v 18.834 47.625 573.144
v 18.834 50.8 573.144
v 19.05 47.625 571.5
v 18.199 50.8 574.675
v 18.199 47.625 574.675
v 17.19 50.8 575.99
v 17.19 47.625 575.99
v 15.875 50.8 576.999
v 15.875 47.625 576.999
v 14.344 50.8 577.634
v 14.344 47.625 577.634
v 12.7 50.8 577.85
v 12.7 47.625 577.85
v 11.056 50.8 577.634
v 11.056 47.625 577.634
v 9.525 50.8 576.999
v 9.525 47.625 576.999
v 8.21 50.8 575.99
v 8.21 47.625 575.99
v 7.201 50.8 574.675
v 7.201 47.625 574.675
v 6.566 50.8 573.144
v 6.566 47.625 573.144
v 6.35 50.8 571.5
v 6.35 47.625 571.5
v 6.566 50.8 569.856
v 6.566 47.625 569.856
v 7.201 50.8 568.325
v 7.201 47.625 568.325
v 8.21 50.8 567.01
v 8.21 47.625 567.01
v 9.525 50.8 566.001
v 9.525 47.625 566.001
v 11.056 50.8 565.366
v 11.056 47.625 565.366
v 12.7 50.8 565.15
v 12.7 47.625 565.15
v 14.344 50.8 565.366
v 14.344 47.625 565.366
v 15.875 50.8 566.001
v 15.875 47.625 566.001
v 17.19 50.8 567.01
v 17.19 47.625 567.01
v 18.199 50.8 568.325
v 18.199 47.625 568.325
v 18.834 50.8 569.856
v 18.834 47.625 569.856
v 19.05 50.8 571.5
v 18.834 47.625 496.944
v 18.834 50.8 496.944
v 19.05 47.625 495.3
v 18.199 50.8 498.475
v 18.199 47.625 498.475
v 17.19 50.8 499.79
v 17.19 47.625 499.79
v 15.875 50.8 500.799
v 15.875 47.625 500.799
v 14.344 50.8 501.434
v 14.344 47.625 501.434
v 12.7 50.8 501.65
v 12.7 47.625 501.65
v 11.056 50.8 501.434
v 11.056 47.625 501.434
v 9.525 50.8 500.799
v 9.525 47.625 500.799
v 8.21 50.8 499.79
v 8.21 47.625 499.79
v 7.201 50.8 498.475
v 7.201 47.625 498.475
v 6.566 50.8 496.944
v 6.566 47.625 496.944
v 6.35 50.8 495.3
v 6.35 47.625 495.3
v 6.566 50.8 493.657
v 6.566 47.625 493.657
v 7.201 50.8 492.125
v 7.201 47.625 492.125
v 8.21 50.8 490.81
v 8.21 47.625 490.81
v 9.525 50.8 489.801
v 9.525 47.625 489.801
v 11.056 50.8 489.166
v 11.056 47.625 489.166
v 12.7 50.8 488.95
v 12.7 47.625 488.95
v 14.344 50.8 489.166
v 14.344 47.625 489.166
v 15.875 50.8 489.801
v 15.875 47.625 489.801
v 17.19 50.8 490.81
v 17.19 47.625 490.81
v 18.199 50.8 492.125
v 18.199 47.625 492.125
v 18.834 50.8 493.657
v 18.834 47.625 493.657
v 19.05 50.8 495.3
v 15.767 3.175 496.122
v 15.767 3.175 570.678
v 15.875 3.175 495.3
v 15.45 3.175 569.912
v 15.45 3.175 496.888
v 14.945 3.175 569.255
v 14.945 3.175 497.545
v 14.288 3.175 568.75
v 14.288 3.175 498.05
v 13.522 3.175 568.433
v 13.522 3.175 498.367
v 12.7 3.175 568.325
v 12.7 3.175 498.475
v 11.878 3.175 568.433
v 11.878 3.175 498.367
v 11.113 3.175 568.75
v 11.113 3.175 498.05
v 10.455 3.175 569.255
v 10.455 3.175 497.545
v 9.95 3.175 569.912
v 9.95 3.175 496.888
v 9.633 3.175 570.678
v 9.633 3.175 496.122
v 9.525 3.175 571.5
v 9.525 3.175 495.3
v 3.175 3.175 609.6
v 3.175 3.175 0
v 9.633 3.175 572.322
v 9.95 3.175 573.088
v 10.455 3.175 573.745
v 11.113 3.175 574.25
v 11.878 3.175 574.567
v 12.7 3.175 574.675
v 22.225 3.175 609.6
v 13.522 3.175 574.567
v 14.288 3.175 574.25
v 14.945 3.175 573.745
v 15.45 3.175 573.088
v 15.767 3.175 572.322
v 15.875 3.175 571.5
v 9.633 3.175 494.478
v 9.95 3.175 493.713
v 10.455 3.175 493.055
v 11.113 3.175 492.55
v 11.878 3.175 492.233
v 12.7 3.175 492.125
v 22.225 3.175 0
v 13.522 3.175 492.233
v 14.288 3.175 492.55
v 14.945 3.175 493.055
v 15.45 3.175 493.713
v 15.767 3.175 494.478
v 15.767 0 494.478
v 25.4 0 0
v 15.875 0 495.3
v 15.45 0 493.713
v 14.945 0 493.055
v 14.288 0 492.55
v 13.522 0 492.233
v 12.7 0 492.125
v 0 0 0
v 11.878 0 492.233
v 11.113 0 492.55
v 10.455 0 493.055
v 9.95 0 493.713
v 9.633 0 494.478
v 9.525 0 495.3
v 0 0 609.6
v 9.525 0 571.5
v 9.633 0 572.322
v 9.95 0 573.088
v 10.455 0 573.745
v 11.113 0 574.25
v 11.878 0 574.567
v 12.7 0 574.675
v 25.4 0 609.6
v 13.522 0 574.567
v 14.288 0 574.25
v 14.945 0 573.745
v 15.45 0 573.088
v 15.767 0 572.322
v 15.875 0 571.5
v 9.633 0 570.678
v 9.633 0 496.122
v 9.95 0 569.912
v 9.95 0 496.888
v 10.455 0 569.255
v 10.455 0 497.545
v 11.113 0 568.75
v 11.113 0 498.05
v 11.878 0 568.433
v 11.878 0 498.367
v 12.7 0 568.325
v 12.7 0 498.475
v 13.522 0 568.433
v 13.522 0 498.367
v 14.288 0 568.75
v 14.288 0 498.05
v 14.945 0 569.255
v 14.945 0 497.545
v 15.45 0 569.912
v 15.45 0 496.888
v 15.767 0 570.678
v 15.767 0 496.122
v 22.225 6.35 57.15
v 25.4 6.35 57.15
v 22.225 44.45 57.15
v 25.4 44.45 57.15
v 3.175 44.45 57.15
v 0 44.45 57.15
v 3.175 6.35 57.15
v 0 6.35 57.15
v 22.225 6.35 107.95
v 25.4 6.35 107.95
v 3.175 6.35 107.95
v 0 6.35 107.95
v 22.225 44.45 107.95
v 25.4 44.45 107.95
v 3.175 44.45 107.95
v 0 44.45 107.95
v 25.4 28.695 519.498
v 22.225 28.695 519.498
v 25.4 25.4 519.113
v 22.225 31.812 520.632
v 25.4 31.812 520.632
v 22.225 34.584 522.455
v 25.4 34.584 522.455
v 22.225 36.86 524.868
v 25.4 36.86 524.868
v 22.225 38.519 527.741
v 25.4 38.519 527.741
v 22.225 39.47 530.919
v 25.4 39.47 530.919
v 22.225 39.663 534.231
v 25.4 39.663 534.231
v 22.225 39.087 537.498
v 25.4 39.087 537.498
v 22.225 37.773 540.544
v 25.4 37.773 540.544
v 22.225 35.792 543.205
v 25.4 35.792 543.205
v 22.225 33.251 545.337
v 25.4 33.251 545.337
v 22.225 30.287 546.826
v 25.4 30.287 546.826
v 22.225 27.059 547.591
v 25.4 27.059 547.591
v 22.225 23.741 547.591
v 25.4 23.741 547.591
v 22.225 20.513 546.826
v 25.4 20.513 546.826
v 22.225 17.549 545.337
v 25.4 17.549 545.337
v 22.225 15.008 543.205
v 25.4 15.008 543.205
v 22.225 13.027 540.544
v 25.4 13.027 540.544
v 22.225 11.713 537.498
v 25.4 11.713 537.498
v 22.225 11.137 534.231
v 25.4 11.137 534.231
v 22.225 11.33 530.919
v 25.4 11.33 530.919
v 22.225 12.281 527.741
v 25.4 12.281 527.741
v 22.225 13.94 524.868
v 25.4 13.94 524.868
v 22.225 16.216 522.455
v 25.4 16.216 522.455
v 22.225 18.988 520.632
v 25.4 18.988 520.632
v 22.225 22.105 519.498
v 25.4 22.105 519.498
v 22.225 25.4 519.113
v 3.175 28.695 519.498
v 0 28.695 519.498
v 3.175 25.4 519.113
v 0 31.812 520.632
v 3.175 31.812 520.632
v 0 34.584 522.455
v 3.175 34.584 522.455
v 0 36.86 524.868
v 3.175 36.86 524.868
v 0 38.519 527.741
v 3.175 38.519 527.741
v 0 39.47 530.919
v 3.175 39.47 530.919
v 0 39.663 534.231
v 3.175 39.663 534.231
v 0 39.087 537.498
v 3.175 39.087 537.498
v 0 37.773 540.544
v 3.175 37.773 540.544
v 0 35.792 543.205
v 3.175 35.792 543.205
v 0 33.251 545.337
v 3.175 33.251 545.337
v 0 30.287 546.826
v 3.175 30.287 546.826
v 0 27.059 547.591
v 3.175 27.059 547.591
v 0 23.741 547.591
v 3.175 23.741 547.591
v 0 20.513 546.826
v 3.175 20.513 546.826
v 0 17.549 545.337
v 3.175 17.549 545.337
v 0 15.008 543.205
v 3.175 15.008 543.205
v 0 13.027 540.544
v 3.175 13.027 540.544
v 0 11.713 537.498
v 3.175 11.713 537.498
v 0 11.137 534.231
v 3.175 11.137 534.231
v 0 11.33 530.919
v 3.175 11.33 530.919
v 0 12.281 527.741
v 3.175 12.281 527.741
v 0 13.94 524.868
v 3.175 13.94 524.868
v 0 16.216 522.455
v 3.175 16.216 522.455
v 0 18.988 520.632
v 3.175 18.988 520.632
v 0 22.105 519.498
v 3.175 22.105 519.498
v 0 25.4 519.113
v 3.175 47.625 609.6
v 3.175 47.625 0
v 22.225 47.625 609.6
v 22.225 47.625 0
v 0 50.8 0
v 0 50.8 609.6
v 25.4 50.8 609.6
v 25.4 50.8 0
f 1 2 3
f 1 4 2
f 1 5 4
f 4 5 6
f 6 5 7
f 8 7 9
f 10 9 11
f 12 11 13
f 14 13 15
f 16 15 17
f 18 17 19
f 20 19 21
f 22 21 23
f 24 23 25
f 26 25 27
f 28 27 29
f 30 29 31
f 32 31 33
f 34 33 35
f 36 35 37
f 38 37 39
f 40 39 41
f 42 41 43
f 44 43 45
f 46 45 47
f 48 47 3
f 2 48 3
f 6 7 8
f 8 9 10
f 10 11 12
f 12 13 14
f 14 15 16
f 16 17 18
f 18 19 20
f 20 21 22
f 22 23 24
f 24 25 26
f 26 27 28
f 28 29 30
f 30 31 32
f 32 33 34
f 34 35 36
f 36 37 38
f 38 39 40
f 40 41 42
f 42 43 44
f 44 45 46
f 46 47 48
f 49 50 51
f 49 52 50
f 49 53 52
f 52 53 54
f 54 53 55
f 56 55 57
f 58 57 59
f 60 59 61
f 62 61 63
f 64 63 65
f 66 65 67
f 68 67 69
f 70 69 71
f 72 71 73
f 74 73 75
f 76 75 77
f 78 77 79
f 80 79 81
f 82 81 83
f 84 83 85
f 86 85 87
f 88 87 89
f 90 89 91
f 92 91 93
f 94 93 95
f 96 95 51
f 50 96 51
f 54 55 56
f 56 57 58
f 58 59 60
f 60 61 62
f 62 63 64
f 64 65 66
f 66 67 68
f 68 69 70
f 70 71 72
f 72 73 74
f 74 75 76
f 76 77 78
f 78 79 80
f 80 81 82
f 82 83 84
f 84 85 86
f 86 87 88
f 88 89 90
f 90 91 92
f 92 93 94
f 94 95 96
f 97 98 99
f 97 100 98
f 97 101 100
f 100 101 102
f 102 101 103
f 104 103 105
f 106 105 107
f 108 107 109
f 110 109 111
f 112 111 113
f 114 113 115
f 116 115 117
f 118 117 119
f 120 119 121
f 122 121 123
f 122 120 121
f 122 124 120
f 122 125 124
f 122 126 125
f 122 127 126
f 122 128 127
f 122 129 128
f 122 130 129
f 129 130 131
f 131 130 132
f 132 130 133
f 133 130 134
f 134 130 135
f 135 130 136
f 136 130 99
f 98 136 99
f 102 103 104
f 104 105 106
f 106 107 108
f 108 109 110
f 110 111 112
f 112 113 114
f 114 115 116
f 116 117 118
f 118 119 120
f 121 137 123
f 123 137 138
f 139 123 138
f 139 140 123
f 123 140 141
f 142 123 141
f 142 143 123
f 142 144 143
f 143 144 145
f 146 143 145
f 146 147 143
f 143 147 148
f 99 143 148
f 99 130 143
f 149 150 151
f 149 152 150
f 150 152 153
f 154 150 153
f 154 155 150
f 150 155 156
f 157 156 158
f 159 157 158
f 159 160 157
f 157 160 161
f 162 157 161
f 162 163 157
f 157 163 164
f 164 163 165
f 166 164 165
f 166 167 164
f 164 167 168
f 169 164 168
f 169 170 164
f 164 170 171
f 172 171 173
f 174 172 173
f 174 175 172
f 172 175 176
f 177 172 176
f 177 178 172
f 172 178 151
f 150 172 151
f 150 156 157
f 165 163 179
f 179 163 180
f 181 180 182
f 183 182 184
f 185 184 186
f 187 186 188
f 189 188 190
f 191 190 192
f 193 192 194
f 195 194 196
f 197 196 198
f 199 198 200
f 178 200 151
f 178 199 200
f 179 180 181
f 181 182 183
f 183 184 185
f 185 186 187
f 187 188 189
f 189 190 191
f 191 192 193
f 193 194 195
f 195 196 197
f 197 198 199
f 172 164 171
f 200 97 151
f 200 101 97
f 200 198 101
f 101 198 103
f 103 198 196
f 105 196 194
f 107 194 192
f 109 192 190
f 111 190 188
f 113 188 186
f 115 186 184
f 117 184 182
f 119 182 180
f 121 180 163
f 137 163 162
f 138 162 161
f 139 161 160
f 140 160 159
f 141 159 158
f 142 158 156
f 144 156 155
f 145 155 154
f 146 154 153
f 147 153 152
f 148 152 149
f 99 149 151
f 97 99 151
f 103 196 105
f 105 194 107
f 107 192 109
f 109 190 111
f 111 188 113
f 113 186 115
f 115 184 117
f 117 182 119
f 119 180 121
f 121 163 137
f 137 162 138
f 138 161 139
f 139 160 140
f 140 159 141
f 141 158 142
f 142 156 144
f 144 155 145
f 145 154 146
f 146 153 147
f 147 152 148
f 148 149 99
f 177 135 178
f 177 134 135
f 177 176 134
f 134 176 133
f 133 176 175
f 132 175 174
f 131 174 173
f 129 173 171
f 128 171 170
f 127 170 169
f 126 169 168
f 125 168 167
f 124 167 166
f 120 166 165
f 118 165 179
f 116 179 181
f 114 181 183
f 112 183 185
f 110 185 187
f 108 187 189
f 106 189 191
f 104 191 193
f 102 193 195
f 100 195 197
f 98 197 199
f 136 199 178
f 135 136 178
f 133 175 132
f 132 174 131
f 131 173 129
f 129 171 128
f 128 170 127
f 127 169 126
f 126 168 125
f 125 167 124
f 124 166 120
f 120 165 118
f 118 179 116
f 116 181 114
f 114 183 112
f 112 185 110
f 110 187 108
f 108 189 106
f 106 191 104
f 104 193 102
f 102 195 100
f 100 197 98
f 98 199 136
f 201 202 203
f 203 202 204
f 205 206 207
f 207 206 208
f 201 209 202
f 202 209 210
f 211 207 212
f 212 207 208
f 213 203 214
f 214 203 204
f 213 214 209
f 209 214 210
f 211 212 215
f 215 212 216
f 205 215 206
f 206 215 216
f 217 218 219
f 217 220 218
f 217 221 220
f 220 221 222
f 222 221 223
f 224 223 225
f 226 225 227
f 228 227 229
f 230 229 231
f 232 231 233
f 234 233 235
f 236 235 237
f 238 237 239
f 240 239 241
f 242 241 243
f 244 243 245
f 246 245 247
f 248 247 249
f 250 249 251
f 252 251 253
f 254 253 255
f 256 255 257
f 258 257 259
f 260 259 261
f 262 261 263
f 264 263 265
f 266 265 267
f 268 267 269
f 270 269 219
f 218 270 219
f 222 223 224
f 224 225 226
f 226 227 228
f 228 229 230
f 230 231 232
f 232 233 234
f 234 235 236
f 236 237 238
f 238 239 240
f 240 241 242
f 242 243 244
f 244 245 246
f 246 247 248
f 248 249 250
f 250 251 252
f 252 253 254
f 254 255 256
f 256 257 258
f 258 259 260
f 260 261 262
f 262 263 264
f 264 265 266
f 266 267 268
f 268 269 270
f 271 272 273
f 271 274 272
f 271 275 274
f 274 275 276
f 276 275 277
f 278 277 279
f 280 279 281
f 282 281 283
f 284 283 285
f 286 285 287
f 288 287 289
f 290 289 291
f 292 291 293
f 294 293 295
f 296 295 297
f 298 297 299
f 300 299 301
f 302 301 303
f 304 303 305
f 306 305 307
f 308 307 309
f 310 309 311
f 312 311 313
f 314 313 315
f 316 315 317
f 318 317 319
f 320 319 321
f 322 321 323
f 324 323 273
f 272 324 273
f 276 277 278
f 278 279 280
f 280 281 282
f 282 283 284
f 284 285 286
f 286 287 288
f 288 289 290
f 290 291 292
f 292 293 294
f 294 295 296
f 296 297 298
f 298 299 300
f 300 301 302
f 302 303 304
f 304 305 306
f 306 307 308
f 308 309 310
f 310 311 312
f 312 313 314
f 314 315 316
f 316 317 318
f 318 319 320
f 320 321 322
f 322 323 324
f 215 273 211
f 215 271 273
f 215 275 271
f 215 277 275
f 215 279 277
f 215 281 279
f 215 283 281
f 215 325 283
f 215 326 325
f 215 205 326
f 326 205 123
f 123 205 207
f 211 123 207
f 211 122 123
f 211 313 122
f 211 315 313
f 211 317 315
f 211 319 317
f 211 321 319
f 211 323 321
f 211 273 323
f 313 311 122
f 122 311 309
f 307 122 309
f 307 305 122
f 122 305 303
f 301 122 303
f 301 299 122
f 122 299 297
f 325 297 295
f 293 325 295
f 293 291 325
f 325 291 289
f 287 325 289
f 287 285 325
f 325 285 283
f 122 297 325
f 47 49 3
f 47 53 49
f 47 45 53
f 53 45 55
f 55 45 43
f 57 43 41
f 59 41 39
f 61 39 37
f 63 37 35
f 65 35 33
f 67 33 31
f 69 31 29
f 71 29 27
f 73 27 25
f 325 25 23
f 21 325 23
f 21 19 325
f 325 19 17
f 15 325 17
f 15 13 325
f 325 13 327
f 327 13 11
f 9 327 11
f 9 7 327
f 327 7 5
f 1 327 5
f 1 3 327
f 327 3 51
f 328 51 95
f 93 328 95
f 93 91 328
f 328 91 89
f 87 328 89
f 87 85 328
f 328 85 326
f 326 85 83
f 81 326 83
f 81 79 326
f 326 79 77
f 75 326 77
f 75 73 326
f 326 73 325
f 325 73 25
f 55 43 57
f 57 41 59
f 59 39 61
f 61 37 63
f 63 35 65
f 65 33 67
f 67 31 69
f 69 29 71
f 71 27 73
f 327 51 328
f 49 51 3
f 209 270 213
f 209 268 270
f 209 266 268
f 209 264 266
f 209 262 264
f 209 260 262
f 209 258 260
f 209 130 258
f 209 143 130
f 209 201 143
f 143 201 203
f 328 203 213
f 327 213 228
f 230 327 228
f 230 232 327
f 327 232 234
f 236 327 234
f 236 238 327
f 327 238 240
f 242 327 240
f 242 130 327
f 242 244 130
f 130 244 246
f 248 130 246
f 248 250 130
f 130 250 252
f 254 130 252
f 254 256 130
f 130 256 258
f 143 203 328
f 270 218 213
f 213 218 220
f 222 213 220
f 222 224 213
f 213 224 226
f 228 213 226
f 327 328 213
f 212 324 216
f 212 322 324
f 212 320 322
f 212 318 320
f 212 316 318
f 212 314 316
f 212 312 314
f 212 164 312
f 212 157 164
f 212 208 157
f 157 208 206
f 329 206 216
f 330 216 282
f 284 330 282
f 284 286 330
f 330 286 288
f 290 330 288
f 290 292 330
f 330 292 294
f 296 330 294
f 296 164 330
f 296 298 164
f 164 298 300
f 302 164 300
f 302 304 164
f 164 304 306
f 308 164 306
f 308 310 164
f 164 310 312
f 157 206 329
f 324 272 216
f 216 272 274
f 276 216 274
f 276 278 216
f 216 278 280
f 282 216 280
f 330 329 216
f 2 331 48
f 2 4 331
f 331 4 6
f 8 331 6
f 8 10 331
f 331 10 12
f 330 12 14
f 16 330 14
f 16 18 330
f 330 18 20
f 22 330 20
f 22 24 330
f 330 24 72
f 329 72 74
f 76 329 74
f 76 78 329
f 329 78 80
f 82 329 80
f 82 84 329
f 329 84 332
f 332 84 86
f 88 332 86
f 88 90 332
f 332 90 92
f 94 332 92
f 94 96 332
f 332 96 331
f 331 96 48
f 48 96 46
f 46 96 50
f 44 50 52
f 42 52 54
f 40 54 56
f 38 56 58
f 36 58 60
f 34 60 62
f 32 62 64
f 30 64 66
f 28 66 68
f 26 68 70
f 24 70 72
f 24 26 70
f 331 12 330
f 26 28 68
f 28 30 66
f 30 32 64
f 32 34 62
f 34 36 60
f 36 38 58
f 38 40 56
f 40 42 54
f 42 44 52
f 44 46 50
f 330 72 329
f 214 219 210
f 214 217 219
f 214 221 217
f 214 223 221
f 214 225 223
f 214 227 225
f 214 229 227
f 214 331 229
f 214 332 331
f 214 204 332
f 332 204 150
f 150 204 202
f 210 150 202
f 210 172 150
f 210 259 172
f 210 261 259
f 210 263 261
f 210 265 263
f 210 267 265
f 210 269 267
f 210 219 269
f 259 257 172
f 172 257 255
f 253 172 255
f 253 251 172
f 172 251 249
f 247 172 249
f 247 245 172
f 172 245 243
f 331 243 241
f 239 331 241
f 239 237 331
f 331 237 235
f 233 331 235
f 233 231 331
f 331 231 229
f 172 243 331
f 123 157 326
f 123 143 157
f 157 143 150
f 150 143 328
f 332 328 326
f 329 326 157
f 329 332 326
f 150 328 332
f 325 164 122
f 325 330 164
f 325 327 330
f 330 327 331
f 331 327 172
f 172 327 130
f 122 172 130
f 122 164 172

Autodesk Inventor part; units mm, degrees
ref_plane "YZ Plane" through (0, 0, 0) normal (1, 0, 0) x (0, 1, 0)
ref_plane "XZ Plane" through (0, 0, 0) normal (0, 1, 0) x (-1, 0, 0)
ref_plane "XY Plane" through (0, 0, 0) normal (0, 0, 1) x (1, 0, 0)
sketch "Sketch1" plane through (0, 0, 0) normal (0, 0, 1) x (1, 0, 0)
  line L0 (0, 0) -> (25.4, 0)
  line L1 (25.4, 0) -> (25.4, 50.8)
  line L2 (25.4, 50.8) -> (0, 50.8)
  line L3 (0, 50.8) -> (0, 0)
  line L4 (3.175, 3.175) -> (22.225, 3.175)
  line L5 (22.225, 3.175) -> (22.225, 47.625)
  line L6 (22.225, 47.625) -> (3.175, 47.625)
  line L7 (3.175, 47.625) -> (3.175, 3.175)
  dimension "d0" = 25.4
  dimension "d1" = 50.8
  dimension "d2" = 19.05
  dimension "d3" = 44.45
  dimension "d4" = 3.175
  dimension "d5" = 3.175
extrude "Extrusion1" add sketch "Sketch1" along normal blind 609.6
sketch "Sketch2" plane through (25.4, 0, 0) normal (1, 0, 0) x (0, 0, -1)
  line L0 (-609.6, 50.8) -> (-609.6, 0) projected
  line L1 (0, 0) -> (0, 50.8) projected
  line L2 (-57.15, 44.45) -> (-107.95, 44.45)
  line L3 (-107.95, 44.45) -> (-107.95, 6.35)
  line L4 (-107.95, 6.35) -> (-57.15, 6.35)
  line L5 (-57.15, 6.35) -> (-57.15, 44.45)
  line L6 (0, 0) -> (-609.6, 0) projected
  line L7 (0, 25.4) -> (0, 0)
  circle A0 centre (-533.4, 25.4) radius 14.2875
  dimension "d12" = 57.15
  dimension "d21" = 107.95
  dimension "d29" = 50.8
  dimension "d32" = 38.1
  dimension "d33" = 6.35
  dimension "d64" = 28.575
  dimension "d65" = 76.2
  dimension "d66" = 25.4
extrude "Extrusion2" cut sketch "Sketch2" against normal through all
sketch "Sketch5" plane through (0, 0, 0) normal (0, -1, 0) x (1, 0, 0)
  line L0 (25.4, 609.6) -> (0, 609.6) projected
  line L1 (25.4, 0) -> (25.4, 609.6) projected
  circle A0 centre (12.7, 571.5) radius 3.175
  circle A1 centre (12.7, 495.3) radius 3.175
  dimension "d53" = 38.1
  dimension "d54" = 76.2
  dimension "d55" = 12.7
  dimension "d56" = 12.7
  dimension "d57" = 6.35
extrude "Extrusion5" cut sketch "Sketch5" against normal through all
sketch "Sketch6" plane through (0, 50.8, 0) normal (0, 1, 0) x (1, 0, 0)
  circle A0 centre (12.7, -495.3) radius 3.175 projected
  circle A1 centre (12.7, -571.5) radius 3.175 projected
  circle A2 centre (12.7, -495.3) radius 6.35
  circle A3 centre (12.7, -571.5) radius 6.35
  dimension "d60" = 12.7
  dimension "d61" = 12.7
extrude "Extrusion6" cut sketch "Sketch6" against normal up to next
properties part number "FrameSideRail" material "Aluminum-6061"
